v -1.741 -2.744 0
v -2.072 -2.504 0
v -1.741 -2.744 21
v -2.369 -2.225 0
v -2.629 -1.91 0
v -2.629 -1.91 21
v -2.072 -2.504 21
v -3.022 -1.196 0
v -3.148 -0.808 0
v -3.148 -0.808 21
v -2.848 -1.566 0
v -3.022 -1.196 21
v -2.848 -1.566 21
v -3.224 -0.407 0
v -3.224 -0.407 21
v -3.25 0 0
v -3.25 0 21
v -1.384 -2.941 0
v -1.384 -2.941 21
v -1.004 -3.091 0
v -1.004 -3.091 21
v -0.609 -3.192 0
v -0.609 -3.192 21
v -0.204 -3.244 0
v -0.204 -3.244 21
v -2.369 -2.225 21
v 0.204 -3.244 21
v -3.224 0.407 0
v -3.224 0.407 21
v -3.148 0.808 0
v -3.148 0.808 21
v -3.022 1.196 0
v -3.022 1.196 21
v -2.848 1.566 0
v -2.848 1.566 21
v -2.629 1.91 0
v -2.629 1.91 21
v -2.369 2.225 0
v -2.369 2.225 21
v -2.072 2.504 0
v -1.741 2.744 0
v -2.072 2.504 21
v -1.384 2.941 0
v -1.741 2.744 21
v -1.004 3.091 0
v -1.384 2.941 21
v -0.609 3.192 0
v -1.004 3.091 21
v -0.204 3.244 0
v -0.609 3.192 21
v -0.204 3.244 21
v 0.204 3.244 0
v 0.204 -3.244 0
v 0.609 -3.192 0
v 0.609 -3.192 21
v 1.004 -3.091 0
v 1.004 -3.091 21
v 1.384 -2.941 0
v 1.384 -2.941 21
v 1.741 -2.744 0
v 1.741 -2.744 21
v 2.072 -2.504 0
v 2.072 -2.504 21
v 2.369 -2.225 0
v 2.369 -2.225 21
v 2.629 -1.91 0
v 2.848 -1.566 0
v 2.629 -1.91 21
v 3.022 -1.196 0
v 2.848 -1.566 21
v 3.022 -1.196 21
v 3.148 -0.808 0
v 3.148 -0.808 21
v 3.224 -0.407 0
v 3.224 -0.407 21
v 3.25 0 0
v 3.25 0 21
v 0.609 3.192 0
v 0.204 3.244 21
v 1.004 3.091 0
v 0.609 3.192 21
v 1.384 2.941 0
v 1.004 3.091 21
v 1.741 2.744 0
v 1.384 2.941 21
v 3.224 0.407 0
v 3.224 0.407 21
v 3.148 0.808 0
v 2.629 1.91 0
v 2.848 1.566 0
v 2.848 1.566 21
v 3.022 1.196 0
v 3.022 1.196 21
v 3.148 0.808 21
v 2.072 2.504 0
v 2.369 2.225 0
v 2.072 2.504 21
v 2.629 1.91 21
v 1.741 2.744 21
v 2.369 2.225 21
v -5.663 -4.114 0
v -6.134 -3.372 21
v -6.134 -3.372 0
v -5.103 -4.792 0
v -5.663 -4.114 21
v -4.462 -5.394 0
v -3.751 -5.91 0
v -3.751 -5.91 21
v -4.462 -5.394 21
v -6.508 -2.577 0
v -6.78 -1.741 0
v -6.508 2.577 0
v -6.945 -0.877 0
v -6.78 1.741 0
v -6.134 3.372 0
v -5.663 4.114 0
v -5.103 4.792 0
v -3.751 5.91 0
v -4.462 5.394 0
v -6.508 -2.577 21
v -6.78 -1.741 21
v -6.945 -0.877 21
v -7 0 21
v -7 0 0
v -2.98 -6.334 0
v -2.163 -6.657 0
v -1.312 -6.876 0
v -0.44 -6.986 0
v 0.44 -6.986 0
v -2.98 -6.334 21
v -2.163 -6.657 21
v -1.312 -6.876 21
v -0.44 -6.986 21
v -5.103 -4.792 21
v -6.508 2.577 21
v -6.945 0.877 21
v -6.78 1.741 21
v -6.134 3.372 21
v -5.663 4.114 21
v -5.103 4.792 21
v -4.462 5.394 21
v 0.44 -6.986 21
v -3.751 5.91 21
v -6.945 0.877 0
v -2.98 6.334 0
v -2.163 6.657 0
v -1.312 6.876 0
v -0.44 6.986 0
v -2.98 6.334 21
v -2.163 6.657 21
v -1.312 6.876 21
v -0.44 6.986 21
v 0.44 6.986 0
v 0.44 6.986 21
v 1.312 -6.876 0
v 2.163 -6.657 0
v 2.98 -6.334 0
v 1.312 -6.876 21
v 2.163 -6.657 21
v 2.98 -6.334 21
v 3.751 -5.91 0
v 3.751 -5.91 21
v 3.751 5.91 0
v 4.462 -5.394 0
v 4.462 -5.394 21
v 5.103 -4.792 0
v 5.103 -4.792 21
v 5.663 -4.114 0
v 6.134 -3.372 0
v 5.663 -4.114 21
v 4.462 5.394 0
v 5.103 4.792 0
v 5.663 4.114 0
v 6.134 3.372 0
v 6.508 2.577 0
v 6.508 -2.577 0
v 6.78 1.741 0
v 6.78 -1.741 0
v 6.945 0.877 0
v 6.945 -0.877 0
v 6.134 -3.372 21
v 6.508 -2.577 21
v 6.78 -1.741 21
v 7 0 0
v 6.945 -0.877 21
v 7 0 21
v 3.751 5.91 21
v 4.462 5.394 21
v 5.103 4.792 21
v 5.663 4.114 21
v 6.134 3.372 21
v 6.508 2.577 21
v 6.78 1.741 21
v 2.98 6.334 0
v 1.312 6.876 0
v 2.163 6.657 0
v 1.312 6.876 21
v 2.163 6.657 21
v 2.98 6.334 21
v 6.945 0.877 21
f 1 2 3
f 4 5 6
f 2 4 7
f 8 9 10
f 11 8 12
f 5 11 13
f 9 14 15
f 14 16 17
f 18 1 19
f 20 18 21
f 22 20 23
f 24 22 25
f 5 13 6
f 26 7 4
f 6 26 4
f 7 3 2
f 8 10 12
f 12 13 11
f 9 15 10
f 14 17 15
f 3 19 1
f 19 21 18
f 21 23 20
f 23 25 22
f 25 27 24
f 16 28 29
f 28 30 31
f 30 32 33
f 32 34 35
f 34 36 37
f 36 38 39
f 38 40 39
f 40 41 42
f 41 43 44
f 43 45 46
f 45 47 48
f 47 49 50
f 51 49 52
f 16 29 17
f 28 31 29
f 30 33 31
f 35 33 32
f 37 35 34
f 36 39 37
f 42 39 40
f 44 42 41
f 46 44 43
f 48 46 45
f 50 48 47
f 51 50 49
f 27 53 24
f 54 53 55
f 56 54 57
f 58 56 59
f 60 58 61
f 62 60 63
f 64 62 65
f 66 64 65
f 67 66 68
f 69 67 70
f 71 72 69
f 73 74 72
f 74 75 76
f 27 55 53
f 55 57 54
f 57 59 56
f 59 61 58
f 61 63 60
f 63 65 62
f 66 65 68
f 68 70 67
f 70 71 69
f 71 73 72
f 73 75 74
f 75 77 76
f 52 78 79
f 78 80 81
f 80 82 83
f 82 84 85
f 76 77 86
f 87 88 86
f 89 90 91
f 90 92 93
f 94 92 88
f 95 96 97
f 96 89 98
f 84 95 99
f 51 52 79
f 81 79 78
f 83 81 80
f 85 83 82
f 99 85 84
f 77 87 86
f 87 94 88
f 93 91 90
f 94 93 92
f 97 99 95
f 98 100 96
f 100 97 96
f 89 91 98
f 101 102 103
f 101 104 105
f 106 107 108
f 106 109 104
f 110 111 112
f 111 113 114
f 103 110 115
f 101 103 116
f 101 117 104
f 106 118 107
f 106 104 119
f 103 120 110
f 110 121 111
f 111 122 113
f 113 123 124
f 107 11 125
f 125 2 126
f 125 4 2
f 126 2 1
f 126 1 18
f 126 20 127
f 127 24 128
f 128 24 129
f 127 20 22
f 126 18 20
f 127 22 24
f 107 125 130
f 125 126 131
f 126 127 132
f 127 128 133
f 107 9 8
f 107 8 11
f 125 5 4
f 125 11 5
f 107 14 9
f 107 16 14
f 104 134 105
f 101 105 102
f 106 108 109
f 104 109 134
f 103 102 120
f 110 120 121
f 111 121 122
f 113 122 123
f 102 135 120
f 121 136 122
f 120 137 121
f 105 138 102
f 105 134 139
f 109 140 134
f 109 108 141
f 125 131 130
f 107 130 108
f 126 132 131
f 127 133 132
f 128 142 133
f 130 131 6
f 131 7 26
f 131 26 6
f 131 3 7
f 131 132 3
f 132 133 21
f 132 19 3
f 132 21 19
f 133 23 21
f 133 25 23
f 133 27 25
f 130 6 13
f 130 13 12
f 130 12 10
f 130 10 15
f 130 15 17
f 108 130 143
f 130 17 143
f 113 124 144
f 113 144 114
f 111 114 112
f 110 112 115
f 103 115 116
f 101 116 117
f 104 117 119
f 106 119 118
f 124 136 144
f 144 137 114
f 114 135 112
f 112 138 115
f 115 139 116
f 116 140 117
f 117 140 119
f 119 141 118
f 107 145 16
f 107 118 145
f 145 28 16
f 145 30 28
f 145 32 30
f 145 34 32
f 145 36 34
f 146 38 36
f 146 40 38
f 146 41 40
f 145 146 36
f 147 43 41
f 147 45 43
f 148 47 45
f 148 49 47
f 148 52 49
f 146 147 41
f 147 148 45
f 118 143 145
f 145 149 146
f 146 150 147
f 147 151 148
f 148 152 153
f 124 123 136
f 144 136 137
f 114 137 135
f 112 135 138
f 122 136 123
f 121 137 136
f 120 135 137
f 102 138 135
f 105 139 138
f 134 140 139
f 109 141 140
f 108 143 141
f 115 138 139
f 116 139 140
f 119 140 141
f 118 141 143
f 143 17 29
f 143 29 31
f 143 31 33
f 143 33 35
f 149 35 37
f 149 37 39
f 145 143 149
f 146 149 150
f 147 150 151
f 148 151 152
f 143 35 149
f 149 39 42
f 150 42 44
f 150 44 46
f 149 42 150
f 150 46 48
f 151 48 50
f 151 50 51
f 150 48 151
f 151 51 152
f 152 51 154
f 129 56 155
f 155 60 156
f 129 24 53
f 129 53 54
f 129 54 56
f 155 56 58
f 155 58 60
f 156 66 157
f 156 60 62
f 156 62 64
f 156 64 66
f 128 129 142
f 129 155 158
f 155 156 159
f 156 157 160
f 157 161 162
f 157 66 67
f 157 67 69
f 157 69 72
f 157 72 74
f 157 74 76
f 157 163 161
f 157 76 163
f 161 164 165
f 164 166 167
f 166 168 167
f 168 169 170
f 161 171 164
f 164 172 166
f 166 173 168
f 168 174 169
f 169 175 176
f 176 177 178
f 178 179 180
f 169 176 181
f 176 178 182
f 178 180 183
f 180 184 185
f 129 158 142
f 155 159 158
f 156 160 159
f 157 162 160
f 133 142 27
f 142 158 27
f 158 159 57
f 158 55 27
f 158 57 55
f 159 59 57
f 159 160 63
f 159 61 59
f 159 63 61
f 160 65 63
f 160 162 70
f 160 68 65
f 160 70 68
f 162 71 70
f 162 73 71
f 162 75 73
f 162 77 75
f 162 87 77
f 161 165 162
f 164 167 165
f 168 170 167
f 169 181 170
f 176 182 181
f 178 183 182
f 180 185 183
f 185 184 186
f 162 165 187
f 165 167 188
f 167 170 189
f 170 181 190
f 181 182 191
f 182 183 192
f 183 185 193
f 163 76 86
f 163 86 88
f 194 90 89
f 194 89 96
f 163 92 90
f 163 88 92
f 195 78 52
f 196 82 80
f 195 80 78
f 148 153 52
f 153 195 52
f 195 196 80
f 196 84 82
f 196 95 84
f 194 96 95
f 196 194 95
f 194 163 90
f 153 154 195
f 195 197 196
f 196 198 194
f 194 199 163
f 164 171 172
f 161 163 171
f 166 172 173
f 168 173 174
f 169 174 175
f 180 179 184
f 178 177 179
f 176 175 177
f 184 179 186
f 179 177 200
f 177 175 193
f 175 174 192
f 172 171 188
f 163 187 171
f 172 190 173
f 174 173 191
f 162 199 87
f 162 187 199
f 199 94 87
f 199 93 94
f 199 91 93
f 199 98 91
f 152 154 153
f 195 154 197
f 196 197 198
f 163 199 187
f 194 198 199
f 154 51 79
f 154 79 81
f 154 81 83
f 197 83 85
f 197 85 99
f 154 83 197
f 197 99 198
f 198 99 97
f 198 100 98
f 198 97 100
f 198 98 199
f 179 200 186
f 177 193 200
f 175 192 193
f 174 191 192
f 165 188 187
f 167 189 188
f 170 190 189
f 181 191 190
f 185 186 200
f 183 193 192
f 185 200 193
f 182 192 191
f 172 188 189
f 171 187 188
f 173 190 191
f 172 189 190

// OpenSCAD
$fn = 50;

difference() {
	union() {
		cylinder(h = 21, r = 7.0);
	}
	union() {
		cylinder(h = 21, r = 3.25);
		cylinder(h = 21, r = 1.8);
	}
}
